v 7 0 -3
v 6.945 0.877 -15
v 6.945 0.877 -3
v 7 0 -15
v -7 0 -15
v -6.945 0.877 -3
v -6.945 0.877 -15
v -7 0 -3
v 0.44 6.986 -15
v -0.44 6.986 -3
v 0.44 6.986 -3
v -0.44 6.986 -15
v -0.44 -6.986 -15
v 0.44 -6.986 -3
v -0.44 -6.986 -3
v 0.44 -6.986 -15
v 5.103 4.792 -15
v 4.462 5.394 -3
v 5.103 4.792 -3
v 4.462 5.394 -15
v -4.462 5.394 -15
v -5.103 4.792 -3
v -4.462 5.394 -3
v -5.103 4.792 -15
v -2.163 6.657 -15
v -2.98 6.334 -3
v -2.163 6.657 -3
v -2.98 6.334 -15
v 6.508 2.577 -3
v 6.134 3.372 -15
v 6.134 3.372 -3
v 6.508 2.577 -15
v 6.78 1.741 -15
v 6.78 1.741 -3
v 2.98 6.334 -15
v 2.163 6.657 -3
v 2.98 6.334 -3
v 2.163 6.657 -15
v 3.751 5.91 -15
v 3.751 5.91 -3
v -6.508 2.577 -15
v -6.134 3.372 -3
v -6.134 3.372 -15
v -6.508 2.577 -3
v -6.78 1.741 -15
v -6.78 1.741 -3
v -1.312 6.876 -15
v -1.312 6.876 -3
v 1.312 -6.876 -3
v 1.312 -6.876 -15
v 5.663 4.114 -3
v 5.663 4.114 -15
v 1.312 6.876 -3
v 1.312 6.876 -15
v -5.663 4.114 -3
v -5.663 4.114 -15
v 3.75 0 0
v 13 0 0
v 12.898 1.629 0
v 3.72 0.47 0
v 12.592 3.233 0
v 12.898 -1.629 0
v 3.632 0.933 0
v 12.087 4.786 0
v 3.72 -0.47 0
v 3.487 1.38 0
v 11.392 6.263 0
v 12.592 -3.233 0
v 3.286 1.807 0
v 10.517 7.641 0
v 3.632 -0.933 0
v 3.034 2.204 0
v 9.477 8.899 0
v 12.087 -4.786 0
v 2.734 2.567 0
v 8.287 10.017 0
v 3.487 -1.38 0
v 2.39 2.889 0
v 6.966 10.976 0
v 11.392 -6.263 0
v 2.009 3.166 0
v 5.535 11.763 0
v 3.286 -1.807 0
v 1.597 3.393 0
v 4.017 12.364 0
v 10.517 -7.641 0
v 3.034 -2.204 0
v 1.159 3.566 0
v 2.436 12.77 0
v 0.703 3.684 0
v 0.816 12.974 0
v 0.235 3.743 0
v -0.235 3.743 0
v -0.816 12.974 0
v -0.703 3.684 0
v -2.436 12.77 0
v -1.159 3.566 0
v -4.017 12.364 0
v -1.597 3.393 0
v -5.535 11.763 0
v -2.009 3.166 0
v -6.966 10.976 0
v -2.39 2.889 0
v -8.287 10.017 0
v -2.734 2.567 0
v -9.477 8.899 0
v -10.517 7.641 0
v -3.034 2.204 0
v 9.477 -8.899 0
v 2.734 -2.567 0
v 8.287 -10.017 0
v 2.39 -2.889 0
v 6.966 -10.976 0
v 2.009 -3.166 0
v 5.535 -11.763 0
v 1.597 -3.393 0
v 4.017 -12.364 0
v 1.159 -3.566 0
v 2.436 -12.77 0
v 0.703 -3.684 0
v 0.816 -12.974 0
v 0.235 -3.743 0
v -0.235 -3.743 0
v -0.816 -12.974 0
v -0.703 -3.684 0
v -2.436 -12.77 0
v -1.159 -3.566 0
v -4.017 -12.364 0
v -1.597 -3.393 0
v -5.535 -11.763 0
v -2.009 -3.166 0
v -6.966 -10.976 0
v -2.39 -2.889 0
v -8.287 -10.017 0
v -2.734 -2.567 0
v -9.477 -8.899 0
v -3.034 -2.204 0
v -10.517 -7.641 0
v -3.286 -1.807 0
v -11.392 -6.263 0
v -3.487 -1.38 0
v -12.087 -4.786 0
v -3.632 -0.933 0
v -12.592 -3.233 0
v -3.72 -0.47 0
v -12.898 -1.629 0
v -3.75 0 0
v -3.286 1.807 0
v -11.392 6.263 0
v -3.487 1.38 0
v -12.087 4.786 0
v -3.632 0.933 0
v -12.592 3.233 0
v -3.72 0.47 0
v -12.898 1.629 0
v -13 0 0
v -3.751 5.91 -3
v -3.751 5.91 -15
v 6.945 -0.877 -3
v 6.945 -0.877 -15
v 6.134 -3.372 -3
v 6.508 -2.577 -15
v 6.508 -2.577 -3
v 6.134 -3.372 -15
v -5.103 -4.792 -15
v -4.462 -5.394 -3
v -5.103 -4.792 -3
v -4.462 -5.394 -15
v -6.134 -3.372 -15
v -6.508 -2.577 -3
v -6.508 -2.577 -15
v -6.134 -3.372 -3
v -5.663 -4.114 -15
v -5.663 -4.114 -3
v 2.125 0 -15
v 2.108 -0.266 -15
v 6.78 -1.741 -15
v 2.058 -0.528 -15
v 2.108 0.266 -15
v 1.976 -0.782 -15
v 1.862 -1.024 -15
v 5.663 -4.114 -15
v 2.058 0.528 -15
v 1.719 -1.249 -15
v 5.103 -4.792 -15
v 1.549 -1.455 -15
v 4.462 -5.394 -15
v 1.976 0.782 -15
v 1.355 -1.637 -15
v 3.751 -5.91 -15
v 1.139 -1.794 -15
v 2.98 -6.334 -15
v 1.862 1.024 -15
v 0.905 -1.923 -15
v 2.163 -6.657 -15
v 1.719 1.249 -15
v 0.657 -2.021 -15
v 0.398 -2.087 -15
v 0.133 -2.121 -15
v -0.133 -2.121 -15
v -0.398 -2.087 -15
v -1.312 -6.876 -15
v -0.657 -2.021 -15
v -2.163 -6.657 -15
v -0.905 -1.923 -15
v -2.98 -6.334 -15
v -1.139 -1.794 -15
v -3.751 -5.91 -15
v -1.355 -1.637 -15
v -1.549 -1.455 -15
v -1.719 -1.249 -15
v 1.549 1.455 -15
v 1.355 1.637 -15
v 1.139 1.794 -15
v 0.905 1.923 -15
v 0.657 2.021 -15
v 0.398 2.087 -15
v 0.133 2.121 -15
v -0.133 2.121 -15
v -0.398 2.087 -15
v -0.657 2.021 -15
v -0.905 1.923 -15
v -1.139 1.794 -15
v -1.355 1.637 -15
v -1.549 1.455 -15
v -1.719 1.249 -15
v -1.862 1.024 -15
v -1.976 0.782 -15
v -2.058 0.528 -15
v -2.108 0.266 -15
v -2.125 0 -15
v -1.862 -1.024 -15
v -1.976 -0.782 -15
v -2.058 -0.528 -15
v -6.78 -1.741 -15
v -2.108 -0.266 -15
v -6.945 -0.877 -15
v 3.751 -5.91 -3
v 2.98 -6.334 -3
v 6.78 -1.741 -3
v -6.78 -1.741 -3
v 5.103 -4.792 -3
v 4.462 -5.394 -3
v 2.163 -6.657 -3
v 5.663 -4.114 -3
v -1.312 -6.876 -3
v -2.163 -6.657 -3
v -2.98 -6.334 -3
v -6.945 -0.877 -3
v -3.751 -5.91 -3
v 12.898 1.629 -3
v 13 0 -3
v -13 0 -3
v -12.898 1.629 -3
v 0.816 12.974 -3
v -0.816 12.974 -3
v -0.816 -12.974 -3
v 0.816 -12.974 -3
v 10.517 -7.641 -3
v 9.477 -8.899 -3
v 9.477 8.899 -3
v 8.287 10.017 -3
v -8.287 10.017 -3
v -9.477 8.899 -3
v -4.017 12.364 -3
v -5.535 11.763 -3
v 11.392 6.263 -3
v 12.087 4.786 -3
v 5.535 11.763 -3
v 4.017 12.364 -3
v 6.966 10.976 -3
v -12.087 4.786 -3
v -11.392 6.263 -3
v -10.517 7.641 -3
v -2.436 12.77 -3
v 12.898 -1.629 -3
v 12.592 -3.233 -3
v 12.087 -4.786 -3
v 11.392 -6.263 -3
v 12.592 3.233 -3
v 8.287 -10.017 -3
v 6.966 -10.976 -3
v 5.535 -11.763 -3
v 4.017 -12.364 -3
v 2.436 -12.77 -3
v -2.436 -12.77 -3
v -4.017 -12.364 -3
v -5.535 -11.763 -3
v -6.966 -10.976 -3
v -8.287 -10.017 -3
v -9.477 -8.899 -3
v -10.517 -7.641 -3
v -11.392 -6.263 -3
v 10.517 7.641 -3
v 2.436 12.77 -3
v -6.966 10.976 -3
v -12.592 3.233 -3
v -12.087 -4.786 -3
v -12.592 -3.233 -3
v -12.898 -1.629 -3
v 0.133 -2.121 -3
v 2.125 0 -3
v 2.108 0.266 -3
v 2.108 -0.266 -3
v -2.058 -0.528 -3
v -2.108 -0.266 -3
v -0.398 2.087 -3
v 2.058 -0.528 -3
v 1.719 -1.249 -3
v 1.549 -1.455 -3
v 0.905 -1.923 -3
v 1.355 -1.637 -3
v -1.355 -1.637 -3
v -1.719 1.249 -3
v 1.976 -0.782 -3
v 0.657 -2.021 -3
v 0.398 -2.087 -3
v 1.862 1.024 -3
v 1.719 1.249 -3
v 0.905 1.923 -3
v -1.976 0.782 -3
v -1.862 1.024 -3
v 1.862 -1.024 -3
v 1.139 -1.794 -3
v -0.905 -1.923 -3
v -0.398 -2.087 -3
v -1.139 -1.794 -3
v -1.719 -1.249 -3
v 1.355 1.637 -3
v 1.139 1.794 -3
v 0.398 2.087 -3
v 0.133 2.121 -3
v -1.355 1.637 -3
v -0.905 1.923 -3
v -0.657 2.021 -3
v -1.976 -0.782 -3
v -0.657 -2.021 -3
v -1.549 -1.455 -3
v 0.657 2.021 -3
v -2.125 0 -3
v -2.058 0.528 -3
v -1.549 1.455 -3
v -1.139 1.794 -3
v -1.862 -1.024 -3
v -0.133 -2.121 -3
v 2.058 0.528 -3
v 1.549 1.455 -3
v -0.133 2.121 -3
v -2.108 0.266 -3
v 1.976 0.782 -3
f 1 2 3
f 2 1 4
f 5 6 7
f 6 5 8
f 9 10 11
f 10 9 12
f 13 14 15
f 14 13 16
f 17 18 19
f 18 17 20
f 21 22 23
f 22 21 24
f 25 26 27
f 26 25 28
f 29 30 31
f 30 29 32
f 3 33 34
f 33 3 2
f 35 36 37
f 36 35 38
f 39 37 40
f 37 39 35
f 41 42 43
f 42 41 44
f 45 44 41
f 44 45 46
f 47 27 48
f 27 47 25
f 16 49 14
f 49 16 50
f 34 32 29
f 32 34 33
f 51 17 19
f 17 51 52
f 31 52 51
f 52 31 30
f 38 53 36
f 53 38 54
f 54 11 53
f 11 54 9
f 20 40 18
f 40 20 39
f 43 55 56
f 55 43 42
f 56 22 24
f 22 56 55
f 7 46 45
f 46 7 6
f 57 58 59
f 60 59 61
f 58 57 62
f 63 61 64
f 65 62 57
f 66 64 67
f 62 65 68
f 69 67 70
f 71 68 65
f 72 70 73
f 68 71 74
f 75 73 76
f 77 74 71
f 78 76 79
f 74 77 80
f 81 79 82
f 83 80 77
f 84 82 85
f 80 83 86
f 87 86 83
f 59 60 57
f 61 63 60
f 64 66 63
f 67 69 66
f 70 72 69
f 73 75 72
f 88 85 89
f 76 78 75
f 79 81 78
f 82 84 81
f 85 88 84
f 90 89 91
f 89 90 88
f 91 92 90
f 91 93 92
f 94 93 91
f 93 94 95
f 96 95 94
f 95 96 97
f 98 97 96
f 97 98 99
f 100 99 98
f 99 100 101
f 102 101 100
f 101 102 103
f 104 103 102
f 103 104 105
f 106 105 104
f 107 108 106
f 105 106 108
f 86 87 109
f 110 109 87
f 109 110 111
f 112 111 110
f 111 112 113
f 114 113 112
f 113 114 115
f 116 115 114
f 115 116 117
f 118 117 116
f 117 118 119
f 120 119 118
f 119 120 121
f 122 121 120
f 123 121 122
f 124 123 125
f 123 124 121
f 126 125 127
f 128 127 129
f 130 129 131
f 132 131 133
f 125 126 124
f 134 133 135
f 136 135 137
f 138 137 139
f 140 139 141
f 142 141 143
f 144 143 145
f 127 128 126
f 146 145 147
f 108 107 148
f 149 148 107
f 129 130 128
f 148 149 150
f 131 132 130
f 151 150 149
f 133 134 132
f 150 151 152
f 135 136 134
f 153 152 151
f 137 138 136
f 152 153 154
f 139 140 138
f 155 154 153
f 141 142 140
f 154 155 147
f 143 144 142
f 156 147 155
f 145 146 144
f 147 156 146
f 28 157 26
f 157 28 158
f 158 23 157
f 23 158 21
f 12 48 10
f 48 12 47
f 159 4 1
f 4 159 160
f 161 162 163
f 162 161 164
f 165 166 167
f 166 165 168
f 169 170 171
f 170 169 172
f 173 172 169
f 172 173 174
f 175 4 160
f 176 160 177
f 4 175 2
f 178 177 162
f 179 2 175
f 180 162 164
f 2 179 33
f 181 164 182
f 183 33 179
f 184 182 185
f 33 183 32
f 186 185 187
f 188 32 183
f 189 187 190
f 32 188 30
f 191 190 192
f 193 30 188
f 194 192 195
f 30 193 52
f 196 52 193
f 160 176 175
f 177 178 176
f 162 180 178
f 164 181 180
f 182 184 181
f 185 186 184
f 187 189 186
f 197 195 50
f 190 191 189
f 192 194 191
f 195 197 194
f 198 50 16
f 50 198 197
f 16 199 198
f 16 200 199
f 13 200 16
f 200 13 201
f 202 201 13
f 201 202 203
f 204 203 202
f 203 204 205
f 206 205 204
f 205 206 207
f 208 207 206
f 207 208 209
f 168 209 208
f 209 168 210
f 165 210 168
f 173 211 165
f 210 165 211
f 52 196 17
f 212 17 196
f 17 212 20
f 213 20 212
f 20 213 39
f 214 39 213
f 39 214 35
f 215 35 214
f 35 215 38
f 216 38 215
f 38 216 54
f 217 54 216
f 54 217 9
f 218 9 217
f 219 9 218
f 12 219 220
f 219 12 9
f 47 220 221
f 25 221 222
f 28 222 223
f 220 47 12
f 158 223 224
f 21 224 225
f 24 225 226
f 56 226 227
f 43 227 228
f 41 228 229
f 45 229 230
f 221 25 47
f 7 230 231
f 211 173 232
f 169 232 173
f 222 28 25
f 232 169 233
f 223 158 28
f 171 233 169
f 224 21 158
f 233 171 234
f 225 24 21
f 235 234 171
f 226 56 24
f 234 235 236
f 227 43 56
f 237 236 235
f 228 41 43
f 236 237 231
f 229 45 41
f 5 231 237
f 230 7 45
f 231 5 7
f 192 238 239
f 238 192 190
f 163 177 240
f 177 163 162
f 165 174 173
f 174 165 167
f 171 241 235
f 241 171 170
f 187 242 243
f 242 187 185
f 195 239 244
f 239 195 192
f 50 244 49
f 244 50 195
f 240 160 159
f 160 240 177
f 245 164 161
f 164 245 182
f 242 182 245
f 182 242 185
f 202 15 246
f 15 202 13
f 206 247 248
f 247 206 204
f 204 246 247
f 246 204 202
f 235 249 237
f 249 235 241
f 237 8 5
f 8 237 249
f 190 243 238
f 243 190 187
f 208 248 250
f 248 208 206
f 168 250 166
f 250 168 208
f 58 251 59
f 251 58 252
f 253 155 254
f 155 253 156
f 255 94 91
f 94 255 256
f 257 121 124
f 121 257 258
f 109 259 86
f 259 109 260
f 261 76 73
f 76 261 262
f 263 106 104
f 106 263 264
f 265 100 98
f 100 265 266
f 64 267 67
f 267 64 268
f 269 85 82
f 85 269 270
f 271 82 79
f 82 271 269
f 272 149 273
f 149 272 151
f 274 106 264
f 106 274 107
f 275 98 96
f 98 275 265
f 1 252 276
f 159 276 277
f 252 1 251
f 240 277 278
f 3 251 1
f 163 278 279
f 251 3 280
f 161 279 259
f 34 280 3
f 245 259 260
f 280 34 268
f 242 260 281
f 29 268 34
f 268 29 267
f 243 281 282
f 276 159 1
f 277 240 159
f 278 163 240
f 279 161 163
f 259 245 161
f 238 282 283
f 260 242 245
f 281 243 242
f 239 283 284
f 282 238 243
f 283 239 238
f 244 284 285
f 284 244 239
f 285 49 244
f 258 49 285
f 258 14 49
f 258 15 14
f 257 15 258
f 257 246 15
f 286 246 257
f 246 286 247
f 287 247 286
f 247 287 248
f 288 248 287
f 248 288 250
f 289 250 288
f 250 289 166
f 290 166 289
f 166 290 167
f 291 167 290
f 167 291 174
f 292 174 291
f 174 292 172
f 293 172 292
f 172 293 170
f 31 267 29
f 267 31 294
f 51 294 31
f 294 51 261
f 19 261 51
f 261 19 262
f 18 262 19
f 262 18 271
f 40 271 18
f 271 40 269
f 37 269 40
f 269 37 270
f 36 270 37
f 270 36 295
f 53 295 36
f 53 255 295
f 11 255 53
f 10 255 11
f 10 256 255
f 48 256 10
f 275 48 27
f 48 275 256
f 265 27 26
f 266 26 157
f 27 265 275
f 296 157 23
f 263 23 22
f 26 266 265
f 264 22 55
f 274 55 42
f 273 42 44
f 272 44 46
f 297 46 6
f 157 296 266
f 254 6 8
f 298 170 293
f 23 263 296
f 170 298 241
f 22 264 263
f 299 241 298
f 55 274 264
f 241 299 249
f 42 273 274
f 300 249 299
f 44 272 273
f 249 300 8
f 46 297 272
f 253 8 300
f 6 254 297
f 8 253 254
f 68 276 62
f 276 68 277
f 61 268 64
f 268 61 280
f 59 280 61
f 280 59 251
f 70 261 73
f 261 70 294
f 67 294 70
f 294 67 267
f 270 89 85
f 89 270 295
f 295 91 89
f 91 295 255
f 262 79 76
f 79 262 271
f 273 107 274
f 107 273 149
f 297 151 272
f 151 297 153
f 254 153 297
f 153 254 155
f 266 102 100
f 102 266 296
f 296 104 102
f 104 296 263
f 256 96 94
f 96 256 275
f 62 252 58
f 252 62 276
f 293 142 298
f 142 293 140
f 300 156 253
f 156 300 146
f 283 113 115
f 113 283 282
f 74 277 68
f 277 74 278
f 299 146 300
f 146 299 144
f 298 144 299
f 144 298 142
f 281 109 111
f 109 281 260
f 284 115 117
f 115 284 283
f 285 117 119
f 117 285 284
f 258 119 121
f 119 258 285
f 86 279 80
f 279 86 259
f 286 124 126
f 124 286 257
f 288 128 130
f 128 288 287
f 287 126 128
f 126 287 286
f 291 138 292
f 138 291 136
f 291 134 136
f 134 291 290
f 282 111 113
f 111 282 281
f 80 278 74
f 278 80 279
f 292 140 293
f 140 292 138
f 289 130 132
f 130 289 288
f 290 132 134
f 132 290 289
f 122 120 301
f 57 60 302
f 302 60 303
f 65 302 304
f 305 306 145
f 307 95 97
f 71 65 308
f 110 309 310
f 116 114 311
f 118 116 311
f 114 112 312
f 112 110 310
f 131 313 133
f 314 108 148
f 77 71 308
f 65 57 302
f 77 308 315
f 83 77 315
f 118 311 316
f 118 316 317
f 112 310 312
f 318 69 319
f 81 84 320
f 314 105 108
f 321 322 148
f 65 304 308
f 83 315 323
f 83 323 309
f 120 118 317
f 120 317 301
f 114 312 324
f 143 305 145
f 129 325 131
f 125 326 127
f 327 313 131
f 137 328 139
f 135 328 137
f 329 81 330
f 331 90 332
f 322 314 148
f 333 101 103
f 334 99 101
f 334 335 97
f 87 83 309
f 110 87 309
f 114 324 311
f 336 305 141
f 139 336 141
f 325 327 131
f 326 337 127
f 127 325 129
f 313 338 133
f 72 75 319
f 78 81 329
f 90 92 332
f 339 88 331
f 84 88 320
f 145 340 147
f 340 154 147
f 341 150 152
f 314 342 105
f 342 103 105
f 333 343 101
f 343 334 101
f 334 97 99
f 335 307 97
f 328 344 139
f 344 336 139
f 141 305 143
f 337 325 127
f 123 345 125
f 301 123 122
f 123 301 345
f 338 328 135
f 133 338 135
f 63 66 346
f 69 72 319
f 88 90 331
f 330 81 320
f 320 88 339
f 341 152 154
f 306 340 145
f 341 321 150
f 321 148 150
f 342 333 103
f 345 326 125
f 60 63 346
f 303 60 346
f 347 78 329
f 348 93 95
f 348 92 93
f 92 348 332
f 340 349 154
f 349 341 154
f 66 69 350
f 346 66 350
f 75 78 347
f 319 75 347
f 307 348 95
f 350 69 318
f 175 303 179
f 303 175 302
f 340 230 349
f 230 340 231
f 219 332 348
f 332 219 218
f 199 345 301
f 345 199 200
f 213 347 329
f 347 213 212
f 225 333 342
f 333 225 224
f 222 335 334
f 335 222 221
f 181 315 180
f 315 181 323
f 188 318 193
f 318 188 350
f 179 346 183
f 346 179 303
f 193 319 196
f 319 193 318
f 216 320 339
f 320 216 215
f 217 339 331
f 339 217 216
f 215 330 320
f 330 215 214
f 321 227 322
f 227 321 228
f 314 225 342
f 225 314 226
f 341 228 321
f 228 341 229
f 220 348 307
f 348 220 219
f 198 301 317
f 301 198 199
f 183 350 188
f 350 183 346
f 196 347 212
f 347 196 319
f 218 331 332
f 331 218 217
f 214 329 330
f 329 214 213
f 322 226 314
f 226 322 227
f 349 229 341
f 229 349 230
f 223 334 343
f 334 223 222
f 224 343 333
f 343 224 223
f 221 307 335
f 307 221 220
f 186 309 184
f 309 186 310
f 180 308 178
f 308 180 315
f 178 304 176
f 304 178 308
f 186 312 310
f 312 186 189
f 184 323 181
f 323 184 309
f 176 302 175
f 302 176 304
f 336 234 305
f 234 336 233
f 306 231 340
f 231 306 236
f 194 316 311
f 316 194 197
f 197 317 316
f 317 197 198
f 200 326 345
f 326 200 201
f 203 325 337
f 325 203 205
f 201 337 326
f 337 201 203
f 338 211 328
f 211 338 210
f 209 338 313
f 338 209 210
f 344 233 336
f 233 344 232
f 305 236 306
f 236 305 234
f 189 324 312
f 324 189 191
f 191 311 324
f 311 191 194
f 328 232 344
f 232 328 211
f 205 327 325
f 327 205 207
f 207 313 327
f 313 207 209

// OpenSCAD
$fn = 50;


difference() {
	union() {
		translate(v = [0, 0, -15.0000000000]) {
			cylinder(h = 15, r = 7.0000000000);
		}
		translate(v = [0, 0, -3.0000000000]) {
			cylinder(h = 3, r = 13.0000000000);
		}
	}
	union() {
		translate(v = [0, 0, 0]) {
			rotate(a = [0, 0, 0]) {
				difference() {
					union() {
						#translate(v = [0, 0, -15.0000000000]) {
							cylinder(h = 15, r = 2.0000000000);
						}
						#translate(v = [0, 0, -3]) {
							cylinder(h = 3, r1 = 2.1250000000, r2 = 3.7500000000);
						}
						#translate(v = [0, 0, -15.0000000000]) {
							cylinder(h = 15, r = 2.1250000000);
						}
						#translate(v = [0, 0, -15.0000000000]) {
							cylinder(h = 15, r = 2.0000000000);
						}
					}
					union();
				}
			}
		}
	}
}
